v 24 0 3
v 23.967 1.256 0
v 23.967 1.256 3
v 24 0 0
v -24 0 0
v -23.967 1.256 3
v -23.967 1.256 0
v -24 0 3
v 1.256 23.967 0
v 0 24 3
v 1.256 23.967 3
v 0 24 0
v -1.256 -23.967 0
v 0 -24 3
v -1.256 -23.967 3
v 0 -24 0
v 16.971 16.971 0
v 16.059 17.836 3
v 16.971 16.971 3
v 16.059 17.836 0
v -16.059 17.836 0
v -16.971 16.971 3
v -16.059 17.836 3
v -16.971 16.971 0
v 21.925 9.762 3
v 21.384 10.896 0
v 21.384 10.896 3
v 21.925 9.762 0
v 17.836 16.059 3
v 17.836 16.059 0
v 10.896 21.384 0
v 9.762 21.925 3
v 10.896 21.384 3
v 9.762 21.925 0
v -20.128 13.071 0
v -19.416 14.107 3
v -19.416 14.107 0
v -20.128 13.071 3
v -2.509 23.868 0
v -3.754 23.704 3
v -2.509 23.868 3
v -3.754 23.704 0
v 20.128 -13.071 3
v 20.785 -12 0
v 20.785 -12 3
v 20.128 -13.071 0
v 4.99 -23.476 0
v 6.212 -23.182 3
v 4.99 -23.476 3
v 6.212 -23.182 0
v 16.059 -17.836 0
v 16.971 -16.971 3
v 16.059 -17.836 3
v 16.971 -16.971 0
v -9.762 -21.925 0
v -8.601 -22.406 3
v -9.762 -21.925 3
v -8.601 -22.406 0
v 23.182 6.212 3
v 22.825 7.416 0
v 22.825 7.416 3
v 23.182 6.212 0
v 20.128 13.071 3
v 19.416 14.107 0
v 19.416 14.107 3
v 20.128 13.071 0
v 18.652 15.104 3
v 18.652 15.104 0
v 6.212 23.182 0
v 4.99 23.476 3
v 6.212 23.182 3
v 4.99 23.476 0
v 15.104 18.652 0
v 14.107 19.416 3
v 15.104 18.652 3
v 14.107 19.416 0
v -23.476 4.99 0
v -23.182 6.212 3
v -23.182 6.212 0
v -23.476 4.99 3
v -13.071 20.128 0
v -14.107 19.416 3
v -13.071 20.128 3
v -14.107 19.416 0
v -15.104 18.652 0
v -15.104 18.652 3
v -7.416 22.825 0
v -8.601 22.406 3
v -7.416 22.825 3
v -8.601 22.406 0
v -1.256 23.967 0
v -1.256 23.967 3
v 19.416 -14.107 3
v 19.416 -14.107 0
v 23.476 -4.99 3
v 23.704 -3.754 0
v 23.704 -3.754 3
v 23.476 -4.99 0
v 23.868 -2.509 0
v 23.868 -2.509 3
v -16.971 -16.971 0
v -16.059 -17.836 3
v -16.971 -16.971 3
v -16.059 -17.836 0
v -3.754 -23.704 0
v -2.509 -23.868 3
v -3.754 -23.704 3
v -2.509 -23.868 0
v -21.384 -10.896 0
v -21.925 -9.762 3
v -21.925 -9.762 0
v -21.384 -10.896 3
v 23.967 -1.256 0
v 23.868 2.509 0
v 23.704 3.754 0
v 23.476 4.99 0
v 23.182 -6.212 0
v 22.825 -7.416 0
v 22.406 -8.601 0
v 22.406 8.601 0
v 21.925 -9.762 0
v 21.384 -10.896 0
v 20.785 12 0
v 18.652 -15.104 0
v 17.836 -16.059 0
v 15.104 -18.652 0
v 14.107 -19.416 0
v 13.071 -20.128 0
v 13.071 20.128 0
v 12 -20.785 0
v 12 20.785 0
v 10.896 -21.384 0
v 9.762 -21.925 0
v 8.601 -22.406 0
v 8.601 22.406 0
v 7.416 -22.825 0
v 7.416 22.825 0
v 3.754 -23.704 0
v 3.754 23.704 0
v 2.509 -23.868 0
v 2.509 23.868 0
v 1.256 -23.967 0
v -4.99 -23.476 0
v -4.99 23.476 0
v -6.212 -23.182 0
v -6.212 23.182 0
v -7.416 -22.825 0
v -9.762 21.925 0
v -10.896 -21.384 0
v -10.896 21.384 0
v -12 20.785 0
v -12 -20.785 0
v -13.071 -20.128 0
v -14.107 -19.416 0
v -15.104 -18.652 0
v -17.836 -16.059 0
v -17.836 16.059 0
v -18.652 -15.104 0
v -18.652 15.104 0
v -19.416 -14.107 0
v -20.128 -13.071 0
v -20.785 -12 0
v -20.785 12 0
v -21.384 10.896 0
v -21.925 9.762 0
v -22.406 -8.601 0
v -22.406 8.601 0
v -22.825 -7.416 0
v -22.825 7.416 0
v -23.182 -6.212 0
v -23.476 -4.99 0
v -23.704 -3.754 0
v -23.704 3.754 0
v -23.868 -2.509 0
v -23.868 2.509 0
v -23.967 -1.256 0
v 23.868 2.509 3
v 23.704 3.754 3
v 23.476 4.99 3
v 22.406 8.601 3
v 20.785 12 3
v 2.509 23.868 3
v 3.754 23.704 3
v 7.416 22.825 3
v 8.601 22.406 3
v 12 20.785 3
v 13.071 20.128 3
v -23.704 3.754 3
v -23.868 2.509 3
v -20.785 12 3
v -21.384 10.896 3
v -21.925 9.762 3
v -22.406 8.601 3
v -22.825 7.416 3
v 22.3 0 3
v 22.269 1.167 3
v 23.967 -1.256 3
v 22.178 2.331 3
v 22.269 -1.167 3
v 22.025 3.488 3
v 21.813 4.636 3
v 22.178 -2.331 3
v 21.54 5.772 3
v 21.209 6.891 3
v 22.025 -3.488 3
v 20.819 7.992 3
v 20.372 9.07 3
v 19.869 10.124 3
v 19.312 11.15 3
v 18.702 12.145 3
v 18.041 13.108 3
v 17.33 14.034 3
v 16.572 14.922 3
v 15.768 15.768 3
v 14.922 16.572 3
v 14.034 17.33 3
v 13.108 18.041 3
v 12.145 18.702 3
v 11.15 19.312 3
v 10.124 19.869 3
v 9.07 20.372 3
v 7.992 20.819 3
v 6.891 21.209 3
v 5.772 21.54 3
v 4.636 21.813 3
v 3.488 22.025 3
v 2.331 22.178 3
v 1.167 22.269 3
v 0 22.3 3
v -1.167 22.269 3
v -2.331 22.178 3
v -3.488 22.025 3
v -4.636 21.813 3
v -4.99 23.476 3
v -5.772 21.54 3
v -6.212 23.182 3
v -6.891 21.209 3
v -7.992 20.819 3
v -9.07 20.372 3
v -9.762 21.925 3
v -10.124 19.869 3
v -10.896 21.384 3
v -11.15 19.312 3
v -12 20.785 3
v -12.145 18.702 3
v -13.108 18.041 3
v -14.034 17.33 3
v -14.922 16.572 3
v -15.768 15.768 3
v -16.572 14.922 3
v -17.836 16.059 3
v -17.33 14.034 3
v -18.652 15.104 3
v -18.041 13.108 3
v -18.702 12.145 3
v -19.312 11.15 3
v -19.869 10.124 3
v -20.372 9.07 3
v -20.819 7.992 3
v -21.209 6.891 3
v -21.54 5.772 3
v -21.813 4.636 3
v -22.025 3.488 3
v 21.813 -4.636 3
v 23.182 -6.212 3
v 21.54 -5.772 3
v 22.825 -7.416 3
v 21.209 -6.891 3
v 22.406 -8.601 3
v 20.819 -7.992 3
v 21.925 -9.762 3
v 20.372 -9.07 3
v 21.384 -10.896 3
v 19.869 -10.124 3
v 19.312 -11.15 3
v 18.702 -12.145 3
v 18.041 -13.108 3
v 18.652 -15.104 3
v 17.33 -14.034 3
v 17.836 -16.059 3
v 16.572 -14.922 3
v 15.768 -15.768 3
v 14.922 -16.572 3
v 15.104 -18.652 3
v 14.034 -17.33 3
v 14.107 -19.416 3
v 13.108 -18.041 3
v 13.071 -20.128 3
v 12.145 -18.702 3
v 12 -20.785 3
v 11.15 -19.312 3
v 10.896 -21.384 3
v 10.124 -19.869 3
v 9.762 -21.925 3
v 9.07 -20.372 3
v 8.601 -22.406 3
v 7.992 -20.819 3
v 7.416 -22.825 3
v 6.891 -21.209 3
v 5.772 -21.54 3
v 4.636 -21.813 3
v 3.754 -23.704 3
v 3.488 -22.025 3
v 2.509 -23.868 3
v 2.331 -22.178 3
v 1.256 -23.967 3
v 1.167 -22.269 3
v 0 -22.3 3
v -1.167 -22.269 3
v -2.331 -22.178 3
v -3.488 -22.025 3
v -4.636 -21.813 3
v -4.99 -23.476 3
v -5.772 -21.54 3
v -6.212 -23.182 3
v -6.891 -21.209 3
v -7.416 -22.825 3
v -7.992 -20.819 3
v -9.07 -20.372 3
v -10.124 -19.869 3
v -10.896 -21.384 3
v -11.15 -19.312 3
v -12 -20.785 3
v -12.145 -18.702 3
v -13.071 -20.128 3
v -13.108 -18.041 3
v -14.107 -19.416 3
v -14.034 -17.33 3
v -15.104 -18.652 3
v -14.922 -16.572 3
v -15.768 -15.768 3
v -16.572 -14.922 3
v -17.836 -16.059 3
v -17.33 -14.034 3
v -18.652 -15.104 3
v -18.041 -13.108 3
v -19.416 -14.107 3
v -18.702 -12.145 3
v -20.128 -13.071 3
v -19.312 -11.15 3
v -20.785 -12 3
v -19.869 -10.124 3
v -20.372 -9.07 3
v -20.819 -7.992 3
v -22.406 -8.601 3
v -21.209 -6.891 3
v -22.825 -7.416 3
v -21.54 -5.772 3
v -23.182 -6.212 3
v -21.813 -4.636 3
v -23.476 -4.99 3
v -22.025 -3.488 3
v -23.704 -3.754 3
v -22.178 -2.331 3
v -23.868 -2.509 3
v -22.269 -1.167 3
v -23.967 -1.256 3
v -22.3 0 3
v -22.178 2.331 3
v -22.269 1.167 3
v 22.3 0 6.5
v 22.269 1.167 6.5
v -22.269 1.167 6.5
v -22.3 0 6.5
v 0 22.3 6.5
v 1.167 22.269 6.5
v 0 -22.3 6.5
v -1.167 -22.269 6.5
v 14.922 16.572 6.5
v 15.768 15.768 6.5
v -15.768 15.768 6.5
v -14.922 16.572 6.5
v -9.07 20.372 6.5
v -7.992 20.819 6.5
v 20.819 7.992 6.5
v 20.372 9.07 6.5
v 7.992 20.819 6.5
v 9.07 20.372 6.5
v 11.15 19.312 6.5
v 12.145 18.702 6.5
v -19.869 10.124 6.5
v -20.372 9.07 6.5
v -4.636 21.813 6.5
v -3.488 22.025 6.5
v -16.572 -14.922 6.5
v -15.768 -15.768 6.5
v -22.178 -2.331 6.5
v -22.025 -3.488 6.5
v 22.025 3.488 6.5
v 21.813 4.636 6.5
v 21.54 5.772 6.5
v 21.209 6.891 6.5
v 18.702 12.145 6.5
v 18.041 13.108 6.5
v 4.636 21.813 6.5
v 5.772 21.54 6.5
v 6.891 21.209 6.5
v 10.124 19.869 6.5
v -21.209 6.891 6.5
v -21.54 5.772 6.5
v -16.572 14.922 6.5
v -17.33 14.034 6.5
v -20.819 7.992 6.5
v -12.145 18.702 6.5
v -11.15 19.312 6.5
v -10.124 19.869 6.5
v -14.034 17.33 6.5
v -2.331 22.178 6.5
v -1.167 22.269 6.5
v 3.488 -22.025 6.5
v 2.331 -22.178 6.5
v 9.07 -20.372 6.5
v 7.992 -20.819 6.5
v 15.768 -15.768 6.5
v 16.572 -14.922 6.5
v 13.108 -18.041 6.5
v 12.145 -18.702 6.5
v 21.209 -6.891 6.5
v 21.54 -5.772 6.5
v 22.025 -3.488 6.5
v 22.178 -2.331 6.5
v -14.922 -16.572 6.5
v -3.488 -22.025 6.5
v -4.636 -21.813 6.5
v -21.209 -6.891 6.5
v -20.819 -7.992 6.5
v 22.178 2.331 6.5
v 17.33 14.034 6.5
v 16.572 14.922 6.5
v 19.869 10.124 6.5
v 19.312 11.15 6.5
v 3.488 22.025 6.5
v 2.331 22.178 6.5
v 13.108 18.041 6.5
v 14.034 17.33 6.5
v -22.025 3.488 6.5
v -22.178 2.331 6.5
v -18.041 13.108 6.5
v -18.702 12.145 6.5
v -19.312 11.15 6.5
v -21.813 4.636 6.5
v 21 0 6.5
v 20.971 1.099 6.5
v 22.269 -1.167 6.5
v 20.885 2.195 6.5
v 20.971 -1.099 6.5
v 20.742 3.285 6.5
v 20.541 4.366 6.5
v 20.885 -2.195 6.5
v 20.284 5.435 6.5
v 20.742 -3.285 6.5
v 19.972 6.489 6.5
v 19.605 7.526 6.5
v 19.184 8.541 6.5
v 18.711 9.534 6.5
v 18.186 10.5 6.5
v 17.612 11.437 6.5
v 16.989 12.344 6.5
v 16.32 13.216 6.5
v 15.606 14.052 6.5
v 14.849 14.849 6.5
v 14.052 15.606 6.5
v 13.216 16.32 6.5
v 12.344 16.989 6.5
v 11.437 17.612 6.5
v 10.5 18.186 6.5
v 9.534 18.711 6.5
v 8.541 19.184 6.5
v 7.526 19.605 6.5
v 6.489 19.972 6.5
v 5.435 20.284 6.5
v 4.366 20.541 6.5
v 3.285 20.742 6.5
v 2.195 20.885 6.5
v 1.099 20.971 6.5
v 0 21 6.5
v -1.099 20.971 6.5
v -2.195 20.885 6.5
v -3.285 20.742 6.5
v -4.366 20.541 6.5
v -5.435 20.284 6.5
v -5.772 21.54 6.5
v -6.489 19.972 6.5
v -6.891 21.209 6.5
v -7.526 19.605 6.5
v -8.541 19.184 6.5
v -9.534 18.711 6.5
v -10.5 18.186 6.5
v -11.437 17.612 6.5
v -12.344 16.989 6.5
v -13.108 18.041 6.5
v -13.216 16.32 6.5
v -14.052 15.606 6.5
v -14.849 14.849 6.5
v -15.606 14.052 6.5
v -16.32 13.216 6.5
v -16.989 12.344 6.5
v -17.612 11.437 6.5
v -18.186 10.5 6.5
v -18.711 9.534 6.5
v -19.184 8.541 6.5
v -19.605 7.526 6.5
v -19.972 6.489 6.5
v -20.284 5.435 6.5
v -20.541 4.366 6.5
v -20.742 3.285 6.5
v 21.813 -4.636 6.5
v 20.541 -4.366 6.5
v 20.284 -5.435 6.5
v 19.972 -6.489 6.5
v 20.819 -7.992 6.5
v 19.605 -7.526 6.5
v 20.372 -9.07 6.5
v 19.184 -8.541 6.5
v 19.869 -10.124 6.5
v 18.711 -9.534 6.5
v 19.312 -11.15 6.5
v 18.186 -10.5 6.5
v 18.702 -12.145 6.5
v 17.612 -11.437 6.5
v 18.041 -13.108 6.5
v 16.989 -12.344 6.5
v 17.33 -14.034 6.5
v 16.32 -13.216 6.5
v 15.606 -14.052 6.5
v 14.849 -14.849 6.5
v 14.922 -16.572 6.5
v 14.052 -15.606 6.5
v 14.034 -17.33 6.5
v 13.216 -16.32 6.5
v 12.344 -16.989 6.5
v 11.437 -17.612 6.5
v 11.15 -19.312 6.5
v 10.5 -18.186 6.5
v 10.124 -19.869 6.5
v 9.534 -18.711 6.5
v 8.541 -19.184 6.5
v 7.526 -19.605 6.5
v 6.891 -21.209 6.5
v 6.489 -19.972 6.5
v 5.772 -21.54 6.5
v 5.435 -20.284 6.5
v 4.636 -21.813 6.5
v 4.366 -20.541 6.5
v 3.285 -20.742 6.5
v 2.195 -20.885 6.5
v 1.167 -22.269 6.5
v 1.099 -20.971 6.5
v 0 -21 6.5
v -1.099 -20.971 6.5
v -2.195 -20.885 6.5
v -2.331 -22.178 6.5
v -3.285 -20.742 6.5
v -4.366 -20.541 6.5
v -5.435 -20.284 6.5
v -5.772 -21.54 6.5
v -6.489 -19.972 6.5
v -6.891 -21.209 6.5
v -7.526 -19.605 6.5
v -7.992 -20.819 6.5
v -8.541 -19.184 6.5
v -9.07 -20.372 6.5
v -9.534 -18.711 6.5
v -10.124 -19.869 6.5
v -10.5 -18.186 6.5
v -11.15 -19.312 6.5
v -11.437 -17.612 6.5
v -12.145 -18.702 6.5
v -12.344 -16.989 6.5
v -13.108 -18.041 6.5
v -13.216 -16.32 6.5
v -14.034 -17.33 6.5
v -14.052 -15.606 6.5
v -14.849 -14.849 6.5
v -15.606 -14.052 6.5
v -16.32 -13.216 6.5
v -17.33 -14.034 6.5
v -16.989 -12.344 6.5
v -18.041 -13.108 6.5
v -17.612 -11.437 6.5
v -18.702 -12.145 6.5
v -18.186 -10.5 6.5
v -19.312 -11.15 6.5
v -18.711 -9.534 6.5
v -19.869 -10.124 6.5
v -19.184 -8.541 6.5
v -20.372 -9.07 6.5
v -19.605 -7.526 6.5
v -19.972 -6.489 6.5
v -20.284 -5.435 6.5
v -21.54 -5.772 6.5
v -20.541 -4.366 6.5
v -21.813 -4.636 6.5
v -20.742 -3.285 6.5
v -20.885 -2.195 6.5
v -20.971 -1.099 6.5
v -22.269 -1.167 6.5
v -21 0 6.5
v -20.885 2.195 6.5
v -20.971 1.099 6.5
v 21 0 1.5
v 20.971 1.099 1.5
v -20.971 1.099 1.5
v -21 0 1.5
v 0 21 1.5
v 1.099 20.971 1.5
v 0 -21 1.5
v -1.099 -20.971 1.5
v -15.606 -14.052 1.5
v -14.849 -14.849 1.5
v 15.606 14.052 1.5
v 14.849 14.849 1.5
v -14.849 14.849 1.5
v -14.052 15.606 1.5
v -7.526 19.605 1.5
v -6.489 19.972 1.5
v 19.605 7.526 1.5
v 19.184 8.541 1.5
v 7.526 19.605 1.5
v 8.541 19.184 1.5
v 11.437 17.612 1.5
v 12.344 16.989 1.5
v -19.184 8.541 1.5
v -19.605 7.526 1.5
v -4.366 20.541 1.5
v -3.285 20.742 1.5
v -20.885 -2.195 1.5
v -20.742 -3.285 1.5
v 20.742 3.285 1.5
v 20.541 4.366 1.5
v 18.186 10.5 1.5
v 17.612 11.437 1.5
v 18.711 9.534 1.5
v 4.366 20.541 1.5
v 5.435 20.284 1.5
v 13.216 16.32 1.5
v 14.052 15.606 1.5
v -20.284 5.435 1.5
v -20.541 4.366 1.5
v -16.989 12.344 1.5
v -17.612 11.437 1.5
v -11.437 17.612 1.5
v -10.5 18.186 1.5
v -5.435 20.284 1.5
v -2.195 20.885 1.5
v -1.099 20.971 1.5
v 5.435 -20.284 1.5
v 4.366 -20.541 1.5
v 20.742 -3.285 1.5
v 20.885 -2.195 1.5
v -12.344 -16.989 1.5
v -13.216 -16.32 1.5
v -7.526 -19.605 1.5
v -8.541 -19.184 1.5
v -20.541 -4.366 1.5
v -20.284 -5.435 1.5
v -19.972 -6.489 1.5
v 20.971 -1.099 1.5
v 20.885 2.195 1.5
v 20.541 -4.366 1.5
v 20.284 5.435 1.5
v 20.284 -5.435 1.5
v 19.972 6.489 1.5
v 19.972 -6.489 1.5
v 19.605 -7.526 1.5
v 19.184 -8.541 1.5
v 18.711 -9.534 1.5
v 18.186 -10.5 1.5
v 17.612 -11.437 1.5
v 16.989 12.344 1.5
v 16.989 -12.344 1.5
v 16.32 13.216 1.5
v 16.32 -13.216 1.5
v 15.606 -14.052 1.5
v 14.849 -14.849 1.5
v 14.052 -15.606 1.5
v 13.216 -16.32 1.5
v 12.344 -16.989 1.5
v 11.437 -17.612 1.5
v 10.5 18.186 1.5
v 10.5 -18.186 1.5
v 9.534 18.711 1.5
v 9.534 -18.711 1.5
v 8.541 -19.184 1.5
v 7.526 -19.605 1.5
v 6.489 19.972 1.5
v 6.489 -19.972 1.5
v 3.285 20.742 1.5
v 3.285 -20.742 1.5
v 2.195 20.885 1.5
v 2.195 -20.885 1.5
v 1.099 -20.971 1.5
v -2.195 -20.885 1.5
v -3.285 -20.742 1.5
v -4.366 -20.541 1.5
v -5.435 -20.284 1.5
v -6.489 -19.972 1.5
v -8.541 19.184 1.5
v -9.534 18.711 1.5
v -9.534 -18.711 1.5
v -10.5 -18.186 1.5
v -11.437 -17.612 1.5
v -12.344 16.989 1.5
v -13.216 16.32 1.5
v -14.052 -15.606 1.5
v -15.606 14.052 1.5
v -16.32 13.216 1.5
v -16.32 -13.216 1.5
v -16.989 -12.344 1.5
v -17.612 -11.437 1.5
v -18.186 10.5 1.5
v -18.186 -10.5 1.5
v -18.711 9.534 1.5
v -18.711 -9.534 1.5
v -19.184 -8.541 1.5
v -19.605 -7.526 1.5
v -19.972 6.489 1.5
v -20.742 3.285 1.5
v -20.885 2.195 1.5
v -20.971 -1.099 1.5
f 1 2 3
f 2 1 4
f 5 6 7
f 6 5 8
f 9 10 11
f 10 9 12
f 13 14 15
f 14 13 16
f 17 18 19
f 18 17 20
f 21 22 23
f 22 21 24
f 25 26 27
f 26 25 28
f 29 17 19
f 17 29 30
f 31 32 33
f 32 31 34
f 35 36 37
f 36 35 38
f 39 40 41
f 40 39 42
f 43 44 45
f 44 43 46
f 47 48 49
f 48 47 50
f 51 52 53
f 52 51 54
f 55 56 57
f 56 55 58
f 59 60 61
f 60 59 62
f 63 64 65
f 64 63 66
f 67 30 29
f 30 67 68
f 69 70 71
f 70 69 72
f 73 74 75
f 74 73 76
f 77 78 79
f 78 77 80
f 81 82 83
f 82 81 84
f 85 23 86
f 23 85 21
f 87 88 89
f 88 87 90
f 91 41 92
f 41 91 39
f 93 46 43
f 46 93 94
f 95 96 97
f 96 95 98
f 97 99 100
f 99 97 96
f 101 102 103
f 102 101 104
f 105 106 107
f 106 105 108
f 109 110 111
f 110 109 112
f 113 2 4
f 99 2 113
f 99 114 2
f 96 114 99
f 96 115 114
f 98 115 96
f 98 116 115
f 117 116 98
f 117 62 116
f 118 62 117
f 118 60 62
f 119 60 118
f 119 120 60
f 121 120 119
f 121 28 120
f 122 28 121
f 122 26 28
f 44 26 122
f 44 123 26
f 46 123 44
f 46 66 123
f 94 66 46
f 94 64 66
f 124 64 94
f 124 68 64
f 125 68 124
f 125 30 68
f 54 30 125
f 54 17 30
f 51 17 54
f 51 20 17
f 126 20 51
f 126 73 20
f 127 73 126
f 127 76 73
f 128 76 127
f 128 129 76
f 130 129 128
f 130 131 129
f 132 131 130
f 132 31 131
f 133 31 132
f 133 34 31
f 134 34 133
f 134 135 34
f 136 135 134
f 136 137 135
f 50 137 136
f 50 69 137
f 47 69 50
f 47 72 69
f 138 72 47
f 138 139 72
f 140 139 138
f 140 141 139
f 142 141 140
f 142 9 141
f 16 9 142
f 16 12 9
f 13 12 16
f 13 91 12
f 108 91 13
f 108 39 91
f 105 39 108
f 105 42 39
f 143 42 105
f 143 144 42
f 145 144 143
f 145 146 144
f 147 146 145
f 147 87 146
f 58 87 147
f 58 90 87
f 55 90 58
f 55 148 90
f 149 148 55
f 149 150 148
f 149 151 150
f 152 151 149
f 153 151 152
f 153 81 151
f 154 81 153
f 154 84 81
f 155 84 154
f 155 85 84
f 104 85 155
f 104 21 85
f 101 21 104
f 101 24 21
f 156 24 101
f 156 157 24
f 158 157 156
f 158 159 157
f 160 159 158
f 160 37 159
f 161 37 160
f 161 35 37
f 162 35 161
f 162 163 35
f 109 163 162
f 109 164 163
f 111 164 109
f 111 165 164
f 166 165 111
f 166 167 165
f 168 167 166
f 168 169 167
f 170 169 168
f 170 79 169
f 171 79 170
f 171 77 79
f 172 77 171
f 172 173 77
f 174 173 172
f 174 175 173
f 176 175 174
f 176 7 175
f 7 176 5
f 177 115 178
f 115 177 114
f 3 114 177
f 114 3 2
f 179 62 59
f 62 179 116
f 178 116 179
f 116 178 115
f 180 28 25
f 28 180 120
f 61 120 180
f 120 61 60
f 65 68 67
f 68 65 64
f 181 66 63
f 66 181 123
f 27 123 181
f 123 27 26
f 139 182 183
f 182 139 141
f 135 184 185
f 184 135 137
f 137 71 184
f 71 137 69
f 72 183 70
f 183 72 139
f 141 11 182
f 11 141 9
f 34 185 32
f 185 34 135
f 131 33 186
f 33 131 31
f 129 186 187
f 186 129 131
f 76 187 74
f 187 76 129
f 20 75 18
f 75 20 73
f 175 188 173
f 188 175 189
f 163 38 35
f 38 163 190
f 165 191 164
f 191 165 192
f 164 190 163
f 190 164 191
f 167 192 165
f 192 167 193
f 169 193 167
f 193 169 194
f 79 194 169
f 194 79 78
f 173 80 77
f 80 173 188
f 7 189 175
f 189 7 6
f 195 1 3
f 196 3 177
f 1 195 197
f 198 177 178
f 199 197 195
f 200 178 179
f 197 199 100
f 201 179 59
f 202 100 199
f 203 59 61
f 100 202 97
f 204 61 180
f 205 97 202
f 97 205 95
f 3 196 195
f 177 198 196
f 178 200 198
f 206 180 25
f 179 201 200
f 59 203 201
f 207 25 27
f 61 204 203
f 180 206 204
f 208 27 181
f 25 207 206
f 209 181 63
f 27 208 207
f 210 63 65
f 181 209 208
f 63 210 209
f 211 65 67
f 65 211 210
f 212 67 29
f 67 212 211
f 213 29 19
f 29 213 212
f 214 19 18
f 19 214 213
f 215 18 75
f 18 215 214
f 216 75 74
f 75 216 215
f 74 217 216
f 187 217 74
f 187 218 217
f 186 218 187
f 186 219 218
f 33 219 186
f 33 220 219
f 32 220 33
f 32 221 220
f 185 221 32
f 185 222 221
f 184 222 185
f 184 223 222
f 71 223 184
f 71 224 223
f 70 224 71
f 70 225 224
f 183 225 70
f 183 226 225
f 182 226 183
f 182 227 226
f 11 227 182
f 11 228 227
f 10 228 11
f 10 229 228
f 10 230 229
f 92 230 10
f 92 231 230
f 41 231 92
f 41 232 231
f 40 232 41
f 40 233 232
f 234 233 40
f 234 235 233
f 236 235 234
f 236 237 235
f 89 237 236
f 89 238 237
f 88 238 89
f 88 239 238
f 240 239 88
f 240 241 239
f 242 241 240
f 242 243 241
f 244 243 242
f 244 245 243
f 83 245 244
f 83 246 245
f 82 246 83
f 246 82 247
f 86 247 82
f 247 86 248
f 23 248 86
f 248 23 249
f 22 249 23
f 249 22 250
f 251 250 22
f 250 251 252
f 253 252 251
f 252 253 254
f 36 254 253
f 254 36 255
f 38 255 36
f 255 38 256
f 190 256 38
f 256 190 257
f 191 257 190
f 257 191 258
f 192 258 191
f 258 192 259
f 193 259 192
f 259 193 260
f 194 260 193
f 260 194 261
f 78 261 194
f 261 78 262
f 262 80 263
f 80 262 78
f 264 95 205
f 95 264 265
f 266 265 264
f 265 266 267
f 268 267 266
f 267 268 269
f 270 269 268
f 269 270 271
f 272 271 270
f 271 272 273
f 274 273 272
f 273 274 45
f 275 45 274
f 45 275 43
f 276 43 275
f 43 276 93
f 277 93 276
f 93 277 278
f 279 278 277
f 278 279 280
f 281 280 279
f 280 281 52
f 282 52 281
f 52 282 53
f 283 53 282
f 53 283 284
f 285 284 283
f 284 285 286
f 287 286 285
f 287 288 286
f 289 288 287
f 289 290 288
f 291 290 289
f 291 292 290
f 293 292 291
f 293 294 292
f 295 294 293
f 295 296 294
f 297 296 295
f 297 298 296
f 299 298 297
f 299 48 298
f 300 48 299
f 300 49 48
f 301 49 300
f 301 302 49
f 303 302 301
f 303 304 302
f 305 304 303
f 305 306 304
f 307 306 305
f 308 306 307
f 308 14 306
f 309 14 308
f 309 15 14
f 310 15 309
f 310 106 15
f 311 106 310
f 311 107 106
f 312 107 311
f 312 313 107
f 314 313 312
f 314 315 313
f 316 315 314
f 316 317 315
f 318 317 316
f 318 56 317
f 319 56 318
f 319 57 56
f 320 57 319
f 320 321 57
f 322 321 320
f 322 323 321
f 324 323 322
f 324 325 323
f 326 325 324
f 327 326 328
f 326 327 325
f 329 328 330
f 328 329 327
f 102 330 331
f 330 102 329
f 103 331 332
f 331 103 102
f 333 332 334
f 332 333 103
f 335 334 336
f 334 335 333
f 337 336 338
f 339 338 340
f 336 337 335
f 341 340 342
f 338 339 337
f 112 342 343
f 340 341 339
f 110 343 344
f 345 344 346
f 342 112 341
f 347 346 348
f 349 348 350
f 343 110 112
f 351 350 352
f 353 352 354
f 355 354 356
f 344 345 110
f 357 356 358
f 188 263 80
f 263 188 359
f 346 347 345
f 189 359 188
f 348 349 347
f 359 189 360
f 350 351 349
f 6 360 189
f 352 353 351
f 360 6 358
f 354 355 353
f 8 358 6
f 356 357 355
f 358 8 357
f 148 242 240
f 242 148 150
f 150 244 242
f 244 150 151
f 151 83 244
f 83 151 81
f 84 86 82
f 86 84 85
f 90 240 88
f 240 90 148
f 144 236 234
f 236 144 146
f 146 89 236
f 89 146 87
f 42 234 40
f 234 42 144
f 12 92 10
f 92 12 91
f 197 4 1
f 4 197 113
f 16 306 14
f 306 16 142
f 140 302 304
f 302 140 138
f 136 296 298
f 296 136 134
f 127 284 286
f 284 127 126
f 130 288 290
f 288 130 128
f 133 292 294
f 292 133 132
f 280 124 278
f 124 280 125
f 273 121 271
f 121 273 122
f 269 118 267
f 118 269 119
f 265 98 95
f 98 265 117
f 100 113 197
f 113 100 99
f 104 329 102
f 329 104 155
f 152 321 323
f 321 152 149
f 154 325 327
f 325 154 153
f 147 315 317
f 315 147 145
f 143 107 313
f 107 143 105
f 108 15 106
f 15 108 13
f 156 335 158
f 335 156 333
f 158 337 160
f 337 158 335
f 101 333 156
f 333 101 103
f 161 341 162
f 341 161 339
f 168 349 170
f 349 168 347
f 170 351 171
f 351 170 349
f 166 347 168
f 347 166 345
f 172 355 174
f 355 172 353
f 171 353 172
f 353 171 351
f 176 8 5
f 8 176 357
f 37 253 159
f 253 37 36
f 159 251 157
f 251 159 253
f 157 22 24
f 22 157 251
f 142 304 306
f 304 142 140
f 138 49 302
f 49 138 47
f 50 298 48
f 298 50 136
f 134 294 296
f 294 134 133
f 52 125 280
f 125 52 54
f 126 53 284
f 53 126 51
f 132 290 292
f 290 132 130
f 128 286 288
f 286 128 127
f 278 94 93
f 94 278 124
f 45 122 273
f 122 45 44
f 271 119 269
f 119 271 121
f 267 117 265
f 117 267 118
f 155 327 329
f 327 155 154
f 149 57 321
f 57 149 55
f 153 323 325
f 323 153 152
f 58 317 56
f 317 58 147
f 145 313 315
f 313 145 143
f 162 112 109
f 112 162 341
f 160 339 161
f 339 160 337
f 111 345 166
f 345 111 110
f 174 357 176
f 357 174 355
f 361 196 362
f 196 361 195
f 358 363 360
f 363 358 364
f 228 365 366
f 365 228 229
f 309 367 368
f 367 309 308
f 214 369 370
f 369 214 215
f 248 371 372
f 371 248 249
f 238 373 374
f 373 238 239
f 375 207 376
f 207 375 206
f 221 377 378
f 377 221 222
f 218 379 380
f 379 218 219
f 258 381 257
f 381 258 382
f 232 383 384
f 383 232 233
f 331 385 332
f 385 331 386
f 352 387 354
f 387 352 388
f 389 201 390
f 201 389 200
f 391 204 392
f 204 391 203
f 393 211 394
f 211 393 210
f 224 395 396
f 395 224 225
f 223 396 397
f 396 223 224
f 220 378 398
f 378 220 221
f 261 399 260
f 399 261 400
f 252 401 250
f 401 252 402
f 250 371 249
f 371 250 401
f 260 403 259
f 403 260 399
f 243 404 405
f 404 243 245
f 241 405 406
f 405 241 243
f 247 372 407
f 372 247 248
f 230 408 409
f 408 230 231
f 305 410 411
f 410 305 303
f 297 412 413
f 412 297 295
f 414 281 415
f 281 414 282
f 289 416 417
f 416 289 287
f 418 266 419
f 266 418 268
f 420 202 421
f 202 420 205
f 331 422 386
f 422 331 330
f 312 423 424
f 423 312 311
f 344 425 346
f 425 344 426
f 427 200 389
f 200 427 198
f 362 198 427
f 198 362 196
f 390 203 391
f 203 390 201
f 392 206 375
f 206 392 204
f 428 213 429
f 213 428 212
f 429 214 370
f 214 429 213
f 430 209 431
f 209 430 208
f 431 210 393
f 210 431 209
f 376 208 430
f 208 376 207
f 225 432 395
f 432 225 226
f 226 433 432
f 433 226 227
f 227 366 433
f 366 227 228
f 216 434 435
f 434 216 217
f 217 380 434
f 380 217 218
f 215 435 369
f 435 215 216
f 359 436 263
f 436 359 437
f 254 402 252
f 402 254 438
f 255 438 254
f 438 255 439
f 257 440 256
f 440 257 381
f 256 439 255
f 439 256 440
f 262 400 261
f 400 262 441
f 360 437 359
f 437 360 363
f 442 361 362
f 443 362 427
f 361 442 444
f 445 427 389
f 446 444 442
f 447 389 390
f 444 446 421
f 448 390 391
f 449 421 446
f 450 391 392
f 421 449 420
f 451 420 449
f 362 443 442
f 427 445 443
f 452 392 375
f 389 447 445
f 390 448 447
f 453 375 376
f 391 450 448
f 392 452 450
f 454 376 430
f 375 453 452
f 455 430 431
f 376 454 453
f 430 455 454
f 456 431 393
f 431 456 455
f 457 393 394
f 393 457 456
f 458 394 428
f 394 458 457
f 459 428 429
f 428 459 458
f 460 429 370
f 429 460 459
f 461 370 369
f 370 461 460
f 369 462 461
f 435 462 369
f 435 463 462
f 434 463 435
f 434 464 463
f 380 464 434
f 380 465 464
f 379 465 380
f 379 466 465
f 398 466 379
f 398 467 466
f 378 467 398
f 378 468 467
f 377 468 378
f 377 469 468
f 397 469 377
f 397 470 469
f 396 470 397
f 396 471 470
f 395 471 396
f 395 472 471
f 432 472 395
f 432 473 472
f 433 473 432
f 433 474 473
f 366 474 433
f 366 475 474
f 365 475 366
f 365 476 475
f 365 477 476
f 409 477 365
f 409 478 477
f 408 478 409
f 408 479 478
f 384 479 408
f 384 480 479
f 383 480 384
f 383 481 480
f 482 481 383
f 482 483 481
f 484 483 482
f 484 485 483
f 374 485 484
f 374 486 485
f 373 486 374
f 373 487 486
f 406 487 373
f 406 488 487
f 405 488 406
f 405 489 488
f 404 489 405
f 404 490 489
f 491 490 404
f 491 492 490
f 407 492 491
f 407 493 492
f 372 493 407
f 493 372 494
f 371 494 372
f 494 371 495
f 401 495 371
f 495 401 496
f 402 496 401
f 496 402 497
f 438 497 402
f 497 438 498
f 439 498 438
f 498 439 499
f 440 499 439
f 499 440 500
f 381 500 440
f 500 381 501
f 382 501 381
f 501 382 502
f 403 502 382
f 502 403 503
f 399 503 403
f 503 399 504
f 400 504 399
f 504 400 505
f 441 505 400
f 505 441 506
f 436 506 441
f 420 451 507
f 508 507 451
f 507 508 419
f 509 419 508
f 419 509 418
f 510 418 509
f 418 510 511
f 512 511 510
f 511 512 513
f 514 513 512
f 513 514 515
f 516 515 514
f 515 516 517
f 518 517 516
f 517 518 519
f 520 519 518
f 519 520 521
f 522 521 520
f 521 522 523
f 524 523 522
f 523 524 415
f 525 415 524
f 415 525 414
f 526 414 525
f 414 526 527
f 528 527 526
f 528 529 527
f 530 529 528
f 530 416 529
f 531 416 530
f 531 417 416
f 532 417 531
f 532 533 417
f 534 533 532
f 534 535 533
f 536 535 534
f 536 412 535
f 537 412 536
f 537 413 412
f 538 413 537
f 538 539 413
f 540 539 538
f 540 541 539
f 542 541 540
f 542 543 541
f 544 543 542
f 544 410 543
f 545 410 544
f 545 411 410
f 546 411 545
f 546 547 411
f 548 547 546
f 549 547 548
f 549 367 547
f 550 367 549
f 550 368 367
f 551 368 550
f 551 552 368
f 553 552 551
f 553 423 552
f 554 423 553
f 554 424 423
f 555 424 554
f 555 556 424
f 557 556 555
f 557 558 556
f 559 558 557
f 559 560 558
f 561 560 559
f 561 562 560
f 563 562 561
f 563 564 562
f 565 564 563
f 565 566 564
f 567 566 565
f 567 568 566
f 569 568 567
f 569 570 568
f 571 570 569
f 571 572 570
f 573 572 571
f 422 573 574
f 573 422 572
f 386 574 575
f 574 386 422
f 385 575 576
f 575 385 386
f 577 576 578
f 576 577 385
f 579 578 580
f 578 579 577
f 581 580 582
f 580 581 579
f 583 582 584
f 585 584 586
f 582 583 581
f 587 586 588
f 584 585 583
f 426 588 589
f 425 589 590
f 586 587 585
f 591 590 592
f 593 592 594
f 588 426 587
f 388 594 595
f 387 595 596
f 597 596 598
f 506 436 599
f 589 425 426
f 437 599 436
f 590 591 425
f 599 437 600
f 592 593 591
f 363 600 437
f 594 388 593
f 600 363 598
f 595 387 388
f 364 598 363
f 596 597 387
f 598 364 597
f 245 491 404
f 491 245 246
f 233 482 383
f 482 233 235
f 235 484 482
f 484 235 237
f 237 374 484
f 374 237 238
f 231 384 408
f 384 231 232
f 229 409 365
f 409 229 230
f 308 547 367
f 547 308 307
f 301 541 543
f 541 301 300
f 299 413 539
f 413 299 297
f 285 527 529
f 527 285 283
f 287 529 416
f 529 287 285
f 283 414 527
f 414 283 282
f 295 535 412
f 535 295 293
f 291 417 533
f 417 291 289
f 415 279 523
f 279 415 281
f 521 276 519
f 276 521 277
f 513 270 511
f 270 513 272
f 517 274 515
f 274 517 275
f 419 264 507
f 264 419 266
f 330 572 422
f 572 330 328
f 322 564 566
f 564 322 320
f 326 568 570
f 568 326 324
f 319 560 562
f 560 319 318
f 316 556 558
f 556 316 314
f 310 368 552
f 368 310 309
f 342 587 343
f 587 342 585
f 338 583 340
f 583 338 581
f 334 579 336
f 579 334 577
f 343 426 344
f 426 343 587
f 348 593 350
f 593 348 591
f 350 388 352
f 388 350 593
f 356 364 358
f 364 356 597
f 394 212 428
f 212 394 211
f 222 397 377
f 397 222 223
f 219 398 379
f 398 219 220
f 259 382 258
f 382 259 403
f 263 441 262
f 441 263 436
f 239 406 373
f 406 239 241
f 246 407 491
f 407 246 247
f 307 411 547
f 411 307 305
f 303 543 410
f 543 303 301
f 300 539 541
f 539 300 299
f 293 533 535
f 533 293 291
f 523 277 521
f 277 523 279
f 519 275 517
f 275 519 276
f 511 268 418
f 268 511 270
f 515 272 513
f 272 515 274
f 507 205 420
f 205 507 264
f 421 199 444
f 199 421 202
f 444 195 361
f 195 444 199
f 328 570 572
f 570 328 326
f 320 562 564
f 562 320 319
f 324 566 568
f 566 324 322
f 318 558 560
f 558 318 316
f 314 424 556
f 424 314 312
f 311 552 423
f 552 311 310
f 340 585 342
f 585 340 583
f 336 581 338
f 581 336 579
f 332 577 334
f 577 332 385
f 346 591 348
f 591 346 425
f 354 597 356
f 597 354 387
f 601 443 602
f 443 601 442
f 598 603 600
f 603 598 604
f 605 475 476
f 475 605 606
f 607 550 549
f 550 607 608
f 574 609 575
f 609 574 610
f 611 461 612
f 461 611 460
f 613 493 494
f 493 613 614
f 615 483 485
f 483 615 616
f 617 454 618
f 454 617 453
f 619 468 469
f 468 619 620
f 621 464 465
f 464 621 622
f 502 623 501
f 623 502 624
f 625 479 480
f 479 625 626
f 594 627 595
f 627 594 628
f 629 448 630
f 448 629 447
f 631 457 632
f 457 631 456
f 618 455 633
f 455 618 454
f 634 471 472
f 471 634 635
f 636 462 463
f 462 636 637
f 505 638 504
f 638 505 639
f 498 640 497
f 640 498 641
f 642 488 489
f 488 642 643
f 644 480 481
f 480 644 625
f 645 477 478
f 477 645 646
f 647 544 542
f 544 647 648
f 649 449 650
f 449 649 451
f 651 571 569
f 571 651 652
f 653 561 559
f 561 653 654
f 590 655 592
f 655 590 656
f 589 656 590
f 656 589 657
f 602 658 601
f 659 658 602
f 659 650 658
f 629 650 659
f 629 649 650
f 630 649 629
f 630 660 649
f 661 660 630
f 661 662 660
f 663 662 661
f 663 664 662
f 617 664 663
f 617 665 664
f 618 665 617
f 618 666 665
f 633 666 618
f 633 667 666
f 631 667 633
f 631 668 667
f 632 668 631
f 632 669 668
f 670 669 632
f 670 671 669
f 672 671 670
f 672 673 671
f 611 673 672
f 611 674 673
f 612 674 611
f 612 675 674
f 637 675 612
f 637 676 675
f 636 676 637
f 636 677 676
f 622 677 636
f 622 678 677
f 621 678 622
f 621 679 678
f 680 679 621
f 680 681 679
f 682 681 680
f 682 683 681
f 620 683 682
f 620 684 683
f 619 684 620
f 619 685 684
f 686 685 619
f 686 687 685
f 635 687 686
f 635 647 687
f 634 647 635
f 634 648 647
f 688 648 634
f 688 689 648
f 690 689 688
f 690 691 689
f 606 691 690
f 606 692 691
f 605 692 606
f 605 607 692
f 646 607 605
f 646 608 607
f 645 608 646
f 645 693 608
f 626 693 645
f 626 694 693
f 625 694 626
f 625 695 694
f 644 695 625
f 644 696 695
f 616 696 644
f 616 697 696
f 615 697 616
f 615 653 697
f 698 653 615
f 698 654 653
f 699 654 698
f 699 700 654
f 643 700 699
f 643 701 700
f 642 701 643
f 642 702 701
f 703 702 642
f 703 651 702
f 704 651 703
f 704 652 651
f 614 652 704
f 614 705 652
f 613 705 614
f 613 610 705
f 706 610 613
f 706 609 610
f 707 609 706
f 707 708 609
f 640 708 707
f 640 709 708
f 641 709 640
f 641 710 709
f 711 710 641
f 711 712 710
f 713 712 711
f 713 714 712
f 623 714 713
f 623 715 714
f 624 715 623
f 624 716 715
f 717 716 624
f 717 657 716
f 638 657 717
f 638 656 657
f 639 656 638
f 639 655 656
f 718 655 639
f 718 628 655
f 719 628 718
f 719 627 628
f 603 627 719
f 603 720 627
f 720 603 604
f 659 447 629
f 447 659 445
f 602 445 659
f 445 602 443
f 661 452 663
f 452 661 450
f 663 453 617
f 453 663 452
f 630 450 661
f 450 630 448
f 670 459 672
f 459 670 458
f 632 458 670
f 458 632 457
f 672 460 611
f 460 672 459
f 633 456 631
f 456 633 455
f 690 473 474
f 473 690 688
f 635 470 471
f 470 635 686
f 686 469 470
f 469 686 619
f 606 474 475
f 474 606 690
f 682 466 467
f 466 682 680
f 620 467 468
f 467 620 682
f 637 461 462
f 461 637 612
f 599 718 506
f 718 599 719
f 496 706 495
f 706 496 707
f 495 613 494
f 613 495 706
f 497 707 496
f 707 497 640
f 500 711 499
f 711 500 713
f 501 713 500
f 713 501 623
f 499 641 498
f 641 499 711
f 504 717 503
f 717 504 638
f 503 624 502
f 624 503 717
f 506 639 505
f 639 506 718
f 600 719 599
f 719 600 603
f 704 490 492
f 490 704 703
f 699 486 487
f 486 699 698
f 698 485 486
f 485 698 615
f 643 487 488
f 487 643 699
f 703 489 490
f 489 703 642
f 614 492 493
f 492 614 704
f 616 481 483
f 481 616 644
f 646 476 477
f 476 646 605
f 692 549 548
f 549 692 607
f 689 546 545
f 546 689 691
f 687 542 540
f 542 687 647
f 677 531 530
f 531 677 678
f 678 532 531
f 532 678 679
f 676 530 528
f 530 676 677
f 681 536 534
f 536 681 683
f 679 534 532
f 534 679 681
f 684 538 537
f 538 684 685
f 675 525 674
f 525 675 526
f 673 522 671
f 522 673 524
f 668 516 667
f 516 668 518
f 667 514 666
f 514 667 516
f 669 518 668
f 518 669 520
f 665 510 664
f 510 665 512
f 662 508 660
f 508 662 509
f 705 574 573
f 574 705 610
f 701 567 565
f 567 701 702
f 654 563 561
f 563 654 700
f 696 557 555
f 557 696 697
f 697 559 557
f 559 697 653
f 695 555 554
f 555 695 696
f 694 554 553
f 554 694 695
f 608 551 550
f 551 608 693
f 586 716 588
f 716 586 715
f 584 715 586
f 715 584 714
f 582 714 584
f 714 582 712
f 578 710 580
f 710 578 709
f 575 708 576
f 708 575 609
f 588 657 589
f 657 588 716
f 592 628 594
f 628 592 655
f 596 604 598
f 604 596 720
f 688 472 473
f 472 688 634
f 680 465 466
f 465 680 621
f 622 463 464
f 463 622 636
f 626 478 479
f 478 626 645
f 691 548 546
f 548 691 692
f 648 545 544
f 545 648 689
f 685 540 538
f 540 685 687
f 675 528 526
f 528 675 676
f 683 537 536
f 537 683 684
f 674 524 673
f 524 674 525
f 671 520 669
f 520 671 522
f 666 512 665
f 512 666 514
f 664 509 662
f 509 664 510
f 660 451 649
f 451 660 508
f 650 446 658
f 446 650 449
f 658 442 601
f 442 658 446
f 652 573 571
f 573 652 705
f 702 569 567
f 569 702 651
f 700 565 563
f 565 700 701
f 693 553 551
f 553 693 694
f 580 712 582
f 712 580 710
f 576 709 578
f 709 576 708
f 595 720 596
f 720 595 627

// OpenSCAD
height=3;
diameter=48;
thickness=1.5;
resolution=120;

difference() {
    lid();
    translate([0,0,thickness]) cylinder(h=7, r=diameter/2-thickness*2, $fn=resolution);
}

module lid() {
cylinder(h=height, r=diameter/2, $fn=resolution);
translate([0,0,thickness]) cylinder(h=5, r=diameter/2-thickness-.2, $fn=resolution);
}
